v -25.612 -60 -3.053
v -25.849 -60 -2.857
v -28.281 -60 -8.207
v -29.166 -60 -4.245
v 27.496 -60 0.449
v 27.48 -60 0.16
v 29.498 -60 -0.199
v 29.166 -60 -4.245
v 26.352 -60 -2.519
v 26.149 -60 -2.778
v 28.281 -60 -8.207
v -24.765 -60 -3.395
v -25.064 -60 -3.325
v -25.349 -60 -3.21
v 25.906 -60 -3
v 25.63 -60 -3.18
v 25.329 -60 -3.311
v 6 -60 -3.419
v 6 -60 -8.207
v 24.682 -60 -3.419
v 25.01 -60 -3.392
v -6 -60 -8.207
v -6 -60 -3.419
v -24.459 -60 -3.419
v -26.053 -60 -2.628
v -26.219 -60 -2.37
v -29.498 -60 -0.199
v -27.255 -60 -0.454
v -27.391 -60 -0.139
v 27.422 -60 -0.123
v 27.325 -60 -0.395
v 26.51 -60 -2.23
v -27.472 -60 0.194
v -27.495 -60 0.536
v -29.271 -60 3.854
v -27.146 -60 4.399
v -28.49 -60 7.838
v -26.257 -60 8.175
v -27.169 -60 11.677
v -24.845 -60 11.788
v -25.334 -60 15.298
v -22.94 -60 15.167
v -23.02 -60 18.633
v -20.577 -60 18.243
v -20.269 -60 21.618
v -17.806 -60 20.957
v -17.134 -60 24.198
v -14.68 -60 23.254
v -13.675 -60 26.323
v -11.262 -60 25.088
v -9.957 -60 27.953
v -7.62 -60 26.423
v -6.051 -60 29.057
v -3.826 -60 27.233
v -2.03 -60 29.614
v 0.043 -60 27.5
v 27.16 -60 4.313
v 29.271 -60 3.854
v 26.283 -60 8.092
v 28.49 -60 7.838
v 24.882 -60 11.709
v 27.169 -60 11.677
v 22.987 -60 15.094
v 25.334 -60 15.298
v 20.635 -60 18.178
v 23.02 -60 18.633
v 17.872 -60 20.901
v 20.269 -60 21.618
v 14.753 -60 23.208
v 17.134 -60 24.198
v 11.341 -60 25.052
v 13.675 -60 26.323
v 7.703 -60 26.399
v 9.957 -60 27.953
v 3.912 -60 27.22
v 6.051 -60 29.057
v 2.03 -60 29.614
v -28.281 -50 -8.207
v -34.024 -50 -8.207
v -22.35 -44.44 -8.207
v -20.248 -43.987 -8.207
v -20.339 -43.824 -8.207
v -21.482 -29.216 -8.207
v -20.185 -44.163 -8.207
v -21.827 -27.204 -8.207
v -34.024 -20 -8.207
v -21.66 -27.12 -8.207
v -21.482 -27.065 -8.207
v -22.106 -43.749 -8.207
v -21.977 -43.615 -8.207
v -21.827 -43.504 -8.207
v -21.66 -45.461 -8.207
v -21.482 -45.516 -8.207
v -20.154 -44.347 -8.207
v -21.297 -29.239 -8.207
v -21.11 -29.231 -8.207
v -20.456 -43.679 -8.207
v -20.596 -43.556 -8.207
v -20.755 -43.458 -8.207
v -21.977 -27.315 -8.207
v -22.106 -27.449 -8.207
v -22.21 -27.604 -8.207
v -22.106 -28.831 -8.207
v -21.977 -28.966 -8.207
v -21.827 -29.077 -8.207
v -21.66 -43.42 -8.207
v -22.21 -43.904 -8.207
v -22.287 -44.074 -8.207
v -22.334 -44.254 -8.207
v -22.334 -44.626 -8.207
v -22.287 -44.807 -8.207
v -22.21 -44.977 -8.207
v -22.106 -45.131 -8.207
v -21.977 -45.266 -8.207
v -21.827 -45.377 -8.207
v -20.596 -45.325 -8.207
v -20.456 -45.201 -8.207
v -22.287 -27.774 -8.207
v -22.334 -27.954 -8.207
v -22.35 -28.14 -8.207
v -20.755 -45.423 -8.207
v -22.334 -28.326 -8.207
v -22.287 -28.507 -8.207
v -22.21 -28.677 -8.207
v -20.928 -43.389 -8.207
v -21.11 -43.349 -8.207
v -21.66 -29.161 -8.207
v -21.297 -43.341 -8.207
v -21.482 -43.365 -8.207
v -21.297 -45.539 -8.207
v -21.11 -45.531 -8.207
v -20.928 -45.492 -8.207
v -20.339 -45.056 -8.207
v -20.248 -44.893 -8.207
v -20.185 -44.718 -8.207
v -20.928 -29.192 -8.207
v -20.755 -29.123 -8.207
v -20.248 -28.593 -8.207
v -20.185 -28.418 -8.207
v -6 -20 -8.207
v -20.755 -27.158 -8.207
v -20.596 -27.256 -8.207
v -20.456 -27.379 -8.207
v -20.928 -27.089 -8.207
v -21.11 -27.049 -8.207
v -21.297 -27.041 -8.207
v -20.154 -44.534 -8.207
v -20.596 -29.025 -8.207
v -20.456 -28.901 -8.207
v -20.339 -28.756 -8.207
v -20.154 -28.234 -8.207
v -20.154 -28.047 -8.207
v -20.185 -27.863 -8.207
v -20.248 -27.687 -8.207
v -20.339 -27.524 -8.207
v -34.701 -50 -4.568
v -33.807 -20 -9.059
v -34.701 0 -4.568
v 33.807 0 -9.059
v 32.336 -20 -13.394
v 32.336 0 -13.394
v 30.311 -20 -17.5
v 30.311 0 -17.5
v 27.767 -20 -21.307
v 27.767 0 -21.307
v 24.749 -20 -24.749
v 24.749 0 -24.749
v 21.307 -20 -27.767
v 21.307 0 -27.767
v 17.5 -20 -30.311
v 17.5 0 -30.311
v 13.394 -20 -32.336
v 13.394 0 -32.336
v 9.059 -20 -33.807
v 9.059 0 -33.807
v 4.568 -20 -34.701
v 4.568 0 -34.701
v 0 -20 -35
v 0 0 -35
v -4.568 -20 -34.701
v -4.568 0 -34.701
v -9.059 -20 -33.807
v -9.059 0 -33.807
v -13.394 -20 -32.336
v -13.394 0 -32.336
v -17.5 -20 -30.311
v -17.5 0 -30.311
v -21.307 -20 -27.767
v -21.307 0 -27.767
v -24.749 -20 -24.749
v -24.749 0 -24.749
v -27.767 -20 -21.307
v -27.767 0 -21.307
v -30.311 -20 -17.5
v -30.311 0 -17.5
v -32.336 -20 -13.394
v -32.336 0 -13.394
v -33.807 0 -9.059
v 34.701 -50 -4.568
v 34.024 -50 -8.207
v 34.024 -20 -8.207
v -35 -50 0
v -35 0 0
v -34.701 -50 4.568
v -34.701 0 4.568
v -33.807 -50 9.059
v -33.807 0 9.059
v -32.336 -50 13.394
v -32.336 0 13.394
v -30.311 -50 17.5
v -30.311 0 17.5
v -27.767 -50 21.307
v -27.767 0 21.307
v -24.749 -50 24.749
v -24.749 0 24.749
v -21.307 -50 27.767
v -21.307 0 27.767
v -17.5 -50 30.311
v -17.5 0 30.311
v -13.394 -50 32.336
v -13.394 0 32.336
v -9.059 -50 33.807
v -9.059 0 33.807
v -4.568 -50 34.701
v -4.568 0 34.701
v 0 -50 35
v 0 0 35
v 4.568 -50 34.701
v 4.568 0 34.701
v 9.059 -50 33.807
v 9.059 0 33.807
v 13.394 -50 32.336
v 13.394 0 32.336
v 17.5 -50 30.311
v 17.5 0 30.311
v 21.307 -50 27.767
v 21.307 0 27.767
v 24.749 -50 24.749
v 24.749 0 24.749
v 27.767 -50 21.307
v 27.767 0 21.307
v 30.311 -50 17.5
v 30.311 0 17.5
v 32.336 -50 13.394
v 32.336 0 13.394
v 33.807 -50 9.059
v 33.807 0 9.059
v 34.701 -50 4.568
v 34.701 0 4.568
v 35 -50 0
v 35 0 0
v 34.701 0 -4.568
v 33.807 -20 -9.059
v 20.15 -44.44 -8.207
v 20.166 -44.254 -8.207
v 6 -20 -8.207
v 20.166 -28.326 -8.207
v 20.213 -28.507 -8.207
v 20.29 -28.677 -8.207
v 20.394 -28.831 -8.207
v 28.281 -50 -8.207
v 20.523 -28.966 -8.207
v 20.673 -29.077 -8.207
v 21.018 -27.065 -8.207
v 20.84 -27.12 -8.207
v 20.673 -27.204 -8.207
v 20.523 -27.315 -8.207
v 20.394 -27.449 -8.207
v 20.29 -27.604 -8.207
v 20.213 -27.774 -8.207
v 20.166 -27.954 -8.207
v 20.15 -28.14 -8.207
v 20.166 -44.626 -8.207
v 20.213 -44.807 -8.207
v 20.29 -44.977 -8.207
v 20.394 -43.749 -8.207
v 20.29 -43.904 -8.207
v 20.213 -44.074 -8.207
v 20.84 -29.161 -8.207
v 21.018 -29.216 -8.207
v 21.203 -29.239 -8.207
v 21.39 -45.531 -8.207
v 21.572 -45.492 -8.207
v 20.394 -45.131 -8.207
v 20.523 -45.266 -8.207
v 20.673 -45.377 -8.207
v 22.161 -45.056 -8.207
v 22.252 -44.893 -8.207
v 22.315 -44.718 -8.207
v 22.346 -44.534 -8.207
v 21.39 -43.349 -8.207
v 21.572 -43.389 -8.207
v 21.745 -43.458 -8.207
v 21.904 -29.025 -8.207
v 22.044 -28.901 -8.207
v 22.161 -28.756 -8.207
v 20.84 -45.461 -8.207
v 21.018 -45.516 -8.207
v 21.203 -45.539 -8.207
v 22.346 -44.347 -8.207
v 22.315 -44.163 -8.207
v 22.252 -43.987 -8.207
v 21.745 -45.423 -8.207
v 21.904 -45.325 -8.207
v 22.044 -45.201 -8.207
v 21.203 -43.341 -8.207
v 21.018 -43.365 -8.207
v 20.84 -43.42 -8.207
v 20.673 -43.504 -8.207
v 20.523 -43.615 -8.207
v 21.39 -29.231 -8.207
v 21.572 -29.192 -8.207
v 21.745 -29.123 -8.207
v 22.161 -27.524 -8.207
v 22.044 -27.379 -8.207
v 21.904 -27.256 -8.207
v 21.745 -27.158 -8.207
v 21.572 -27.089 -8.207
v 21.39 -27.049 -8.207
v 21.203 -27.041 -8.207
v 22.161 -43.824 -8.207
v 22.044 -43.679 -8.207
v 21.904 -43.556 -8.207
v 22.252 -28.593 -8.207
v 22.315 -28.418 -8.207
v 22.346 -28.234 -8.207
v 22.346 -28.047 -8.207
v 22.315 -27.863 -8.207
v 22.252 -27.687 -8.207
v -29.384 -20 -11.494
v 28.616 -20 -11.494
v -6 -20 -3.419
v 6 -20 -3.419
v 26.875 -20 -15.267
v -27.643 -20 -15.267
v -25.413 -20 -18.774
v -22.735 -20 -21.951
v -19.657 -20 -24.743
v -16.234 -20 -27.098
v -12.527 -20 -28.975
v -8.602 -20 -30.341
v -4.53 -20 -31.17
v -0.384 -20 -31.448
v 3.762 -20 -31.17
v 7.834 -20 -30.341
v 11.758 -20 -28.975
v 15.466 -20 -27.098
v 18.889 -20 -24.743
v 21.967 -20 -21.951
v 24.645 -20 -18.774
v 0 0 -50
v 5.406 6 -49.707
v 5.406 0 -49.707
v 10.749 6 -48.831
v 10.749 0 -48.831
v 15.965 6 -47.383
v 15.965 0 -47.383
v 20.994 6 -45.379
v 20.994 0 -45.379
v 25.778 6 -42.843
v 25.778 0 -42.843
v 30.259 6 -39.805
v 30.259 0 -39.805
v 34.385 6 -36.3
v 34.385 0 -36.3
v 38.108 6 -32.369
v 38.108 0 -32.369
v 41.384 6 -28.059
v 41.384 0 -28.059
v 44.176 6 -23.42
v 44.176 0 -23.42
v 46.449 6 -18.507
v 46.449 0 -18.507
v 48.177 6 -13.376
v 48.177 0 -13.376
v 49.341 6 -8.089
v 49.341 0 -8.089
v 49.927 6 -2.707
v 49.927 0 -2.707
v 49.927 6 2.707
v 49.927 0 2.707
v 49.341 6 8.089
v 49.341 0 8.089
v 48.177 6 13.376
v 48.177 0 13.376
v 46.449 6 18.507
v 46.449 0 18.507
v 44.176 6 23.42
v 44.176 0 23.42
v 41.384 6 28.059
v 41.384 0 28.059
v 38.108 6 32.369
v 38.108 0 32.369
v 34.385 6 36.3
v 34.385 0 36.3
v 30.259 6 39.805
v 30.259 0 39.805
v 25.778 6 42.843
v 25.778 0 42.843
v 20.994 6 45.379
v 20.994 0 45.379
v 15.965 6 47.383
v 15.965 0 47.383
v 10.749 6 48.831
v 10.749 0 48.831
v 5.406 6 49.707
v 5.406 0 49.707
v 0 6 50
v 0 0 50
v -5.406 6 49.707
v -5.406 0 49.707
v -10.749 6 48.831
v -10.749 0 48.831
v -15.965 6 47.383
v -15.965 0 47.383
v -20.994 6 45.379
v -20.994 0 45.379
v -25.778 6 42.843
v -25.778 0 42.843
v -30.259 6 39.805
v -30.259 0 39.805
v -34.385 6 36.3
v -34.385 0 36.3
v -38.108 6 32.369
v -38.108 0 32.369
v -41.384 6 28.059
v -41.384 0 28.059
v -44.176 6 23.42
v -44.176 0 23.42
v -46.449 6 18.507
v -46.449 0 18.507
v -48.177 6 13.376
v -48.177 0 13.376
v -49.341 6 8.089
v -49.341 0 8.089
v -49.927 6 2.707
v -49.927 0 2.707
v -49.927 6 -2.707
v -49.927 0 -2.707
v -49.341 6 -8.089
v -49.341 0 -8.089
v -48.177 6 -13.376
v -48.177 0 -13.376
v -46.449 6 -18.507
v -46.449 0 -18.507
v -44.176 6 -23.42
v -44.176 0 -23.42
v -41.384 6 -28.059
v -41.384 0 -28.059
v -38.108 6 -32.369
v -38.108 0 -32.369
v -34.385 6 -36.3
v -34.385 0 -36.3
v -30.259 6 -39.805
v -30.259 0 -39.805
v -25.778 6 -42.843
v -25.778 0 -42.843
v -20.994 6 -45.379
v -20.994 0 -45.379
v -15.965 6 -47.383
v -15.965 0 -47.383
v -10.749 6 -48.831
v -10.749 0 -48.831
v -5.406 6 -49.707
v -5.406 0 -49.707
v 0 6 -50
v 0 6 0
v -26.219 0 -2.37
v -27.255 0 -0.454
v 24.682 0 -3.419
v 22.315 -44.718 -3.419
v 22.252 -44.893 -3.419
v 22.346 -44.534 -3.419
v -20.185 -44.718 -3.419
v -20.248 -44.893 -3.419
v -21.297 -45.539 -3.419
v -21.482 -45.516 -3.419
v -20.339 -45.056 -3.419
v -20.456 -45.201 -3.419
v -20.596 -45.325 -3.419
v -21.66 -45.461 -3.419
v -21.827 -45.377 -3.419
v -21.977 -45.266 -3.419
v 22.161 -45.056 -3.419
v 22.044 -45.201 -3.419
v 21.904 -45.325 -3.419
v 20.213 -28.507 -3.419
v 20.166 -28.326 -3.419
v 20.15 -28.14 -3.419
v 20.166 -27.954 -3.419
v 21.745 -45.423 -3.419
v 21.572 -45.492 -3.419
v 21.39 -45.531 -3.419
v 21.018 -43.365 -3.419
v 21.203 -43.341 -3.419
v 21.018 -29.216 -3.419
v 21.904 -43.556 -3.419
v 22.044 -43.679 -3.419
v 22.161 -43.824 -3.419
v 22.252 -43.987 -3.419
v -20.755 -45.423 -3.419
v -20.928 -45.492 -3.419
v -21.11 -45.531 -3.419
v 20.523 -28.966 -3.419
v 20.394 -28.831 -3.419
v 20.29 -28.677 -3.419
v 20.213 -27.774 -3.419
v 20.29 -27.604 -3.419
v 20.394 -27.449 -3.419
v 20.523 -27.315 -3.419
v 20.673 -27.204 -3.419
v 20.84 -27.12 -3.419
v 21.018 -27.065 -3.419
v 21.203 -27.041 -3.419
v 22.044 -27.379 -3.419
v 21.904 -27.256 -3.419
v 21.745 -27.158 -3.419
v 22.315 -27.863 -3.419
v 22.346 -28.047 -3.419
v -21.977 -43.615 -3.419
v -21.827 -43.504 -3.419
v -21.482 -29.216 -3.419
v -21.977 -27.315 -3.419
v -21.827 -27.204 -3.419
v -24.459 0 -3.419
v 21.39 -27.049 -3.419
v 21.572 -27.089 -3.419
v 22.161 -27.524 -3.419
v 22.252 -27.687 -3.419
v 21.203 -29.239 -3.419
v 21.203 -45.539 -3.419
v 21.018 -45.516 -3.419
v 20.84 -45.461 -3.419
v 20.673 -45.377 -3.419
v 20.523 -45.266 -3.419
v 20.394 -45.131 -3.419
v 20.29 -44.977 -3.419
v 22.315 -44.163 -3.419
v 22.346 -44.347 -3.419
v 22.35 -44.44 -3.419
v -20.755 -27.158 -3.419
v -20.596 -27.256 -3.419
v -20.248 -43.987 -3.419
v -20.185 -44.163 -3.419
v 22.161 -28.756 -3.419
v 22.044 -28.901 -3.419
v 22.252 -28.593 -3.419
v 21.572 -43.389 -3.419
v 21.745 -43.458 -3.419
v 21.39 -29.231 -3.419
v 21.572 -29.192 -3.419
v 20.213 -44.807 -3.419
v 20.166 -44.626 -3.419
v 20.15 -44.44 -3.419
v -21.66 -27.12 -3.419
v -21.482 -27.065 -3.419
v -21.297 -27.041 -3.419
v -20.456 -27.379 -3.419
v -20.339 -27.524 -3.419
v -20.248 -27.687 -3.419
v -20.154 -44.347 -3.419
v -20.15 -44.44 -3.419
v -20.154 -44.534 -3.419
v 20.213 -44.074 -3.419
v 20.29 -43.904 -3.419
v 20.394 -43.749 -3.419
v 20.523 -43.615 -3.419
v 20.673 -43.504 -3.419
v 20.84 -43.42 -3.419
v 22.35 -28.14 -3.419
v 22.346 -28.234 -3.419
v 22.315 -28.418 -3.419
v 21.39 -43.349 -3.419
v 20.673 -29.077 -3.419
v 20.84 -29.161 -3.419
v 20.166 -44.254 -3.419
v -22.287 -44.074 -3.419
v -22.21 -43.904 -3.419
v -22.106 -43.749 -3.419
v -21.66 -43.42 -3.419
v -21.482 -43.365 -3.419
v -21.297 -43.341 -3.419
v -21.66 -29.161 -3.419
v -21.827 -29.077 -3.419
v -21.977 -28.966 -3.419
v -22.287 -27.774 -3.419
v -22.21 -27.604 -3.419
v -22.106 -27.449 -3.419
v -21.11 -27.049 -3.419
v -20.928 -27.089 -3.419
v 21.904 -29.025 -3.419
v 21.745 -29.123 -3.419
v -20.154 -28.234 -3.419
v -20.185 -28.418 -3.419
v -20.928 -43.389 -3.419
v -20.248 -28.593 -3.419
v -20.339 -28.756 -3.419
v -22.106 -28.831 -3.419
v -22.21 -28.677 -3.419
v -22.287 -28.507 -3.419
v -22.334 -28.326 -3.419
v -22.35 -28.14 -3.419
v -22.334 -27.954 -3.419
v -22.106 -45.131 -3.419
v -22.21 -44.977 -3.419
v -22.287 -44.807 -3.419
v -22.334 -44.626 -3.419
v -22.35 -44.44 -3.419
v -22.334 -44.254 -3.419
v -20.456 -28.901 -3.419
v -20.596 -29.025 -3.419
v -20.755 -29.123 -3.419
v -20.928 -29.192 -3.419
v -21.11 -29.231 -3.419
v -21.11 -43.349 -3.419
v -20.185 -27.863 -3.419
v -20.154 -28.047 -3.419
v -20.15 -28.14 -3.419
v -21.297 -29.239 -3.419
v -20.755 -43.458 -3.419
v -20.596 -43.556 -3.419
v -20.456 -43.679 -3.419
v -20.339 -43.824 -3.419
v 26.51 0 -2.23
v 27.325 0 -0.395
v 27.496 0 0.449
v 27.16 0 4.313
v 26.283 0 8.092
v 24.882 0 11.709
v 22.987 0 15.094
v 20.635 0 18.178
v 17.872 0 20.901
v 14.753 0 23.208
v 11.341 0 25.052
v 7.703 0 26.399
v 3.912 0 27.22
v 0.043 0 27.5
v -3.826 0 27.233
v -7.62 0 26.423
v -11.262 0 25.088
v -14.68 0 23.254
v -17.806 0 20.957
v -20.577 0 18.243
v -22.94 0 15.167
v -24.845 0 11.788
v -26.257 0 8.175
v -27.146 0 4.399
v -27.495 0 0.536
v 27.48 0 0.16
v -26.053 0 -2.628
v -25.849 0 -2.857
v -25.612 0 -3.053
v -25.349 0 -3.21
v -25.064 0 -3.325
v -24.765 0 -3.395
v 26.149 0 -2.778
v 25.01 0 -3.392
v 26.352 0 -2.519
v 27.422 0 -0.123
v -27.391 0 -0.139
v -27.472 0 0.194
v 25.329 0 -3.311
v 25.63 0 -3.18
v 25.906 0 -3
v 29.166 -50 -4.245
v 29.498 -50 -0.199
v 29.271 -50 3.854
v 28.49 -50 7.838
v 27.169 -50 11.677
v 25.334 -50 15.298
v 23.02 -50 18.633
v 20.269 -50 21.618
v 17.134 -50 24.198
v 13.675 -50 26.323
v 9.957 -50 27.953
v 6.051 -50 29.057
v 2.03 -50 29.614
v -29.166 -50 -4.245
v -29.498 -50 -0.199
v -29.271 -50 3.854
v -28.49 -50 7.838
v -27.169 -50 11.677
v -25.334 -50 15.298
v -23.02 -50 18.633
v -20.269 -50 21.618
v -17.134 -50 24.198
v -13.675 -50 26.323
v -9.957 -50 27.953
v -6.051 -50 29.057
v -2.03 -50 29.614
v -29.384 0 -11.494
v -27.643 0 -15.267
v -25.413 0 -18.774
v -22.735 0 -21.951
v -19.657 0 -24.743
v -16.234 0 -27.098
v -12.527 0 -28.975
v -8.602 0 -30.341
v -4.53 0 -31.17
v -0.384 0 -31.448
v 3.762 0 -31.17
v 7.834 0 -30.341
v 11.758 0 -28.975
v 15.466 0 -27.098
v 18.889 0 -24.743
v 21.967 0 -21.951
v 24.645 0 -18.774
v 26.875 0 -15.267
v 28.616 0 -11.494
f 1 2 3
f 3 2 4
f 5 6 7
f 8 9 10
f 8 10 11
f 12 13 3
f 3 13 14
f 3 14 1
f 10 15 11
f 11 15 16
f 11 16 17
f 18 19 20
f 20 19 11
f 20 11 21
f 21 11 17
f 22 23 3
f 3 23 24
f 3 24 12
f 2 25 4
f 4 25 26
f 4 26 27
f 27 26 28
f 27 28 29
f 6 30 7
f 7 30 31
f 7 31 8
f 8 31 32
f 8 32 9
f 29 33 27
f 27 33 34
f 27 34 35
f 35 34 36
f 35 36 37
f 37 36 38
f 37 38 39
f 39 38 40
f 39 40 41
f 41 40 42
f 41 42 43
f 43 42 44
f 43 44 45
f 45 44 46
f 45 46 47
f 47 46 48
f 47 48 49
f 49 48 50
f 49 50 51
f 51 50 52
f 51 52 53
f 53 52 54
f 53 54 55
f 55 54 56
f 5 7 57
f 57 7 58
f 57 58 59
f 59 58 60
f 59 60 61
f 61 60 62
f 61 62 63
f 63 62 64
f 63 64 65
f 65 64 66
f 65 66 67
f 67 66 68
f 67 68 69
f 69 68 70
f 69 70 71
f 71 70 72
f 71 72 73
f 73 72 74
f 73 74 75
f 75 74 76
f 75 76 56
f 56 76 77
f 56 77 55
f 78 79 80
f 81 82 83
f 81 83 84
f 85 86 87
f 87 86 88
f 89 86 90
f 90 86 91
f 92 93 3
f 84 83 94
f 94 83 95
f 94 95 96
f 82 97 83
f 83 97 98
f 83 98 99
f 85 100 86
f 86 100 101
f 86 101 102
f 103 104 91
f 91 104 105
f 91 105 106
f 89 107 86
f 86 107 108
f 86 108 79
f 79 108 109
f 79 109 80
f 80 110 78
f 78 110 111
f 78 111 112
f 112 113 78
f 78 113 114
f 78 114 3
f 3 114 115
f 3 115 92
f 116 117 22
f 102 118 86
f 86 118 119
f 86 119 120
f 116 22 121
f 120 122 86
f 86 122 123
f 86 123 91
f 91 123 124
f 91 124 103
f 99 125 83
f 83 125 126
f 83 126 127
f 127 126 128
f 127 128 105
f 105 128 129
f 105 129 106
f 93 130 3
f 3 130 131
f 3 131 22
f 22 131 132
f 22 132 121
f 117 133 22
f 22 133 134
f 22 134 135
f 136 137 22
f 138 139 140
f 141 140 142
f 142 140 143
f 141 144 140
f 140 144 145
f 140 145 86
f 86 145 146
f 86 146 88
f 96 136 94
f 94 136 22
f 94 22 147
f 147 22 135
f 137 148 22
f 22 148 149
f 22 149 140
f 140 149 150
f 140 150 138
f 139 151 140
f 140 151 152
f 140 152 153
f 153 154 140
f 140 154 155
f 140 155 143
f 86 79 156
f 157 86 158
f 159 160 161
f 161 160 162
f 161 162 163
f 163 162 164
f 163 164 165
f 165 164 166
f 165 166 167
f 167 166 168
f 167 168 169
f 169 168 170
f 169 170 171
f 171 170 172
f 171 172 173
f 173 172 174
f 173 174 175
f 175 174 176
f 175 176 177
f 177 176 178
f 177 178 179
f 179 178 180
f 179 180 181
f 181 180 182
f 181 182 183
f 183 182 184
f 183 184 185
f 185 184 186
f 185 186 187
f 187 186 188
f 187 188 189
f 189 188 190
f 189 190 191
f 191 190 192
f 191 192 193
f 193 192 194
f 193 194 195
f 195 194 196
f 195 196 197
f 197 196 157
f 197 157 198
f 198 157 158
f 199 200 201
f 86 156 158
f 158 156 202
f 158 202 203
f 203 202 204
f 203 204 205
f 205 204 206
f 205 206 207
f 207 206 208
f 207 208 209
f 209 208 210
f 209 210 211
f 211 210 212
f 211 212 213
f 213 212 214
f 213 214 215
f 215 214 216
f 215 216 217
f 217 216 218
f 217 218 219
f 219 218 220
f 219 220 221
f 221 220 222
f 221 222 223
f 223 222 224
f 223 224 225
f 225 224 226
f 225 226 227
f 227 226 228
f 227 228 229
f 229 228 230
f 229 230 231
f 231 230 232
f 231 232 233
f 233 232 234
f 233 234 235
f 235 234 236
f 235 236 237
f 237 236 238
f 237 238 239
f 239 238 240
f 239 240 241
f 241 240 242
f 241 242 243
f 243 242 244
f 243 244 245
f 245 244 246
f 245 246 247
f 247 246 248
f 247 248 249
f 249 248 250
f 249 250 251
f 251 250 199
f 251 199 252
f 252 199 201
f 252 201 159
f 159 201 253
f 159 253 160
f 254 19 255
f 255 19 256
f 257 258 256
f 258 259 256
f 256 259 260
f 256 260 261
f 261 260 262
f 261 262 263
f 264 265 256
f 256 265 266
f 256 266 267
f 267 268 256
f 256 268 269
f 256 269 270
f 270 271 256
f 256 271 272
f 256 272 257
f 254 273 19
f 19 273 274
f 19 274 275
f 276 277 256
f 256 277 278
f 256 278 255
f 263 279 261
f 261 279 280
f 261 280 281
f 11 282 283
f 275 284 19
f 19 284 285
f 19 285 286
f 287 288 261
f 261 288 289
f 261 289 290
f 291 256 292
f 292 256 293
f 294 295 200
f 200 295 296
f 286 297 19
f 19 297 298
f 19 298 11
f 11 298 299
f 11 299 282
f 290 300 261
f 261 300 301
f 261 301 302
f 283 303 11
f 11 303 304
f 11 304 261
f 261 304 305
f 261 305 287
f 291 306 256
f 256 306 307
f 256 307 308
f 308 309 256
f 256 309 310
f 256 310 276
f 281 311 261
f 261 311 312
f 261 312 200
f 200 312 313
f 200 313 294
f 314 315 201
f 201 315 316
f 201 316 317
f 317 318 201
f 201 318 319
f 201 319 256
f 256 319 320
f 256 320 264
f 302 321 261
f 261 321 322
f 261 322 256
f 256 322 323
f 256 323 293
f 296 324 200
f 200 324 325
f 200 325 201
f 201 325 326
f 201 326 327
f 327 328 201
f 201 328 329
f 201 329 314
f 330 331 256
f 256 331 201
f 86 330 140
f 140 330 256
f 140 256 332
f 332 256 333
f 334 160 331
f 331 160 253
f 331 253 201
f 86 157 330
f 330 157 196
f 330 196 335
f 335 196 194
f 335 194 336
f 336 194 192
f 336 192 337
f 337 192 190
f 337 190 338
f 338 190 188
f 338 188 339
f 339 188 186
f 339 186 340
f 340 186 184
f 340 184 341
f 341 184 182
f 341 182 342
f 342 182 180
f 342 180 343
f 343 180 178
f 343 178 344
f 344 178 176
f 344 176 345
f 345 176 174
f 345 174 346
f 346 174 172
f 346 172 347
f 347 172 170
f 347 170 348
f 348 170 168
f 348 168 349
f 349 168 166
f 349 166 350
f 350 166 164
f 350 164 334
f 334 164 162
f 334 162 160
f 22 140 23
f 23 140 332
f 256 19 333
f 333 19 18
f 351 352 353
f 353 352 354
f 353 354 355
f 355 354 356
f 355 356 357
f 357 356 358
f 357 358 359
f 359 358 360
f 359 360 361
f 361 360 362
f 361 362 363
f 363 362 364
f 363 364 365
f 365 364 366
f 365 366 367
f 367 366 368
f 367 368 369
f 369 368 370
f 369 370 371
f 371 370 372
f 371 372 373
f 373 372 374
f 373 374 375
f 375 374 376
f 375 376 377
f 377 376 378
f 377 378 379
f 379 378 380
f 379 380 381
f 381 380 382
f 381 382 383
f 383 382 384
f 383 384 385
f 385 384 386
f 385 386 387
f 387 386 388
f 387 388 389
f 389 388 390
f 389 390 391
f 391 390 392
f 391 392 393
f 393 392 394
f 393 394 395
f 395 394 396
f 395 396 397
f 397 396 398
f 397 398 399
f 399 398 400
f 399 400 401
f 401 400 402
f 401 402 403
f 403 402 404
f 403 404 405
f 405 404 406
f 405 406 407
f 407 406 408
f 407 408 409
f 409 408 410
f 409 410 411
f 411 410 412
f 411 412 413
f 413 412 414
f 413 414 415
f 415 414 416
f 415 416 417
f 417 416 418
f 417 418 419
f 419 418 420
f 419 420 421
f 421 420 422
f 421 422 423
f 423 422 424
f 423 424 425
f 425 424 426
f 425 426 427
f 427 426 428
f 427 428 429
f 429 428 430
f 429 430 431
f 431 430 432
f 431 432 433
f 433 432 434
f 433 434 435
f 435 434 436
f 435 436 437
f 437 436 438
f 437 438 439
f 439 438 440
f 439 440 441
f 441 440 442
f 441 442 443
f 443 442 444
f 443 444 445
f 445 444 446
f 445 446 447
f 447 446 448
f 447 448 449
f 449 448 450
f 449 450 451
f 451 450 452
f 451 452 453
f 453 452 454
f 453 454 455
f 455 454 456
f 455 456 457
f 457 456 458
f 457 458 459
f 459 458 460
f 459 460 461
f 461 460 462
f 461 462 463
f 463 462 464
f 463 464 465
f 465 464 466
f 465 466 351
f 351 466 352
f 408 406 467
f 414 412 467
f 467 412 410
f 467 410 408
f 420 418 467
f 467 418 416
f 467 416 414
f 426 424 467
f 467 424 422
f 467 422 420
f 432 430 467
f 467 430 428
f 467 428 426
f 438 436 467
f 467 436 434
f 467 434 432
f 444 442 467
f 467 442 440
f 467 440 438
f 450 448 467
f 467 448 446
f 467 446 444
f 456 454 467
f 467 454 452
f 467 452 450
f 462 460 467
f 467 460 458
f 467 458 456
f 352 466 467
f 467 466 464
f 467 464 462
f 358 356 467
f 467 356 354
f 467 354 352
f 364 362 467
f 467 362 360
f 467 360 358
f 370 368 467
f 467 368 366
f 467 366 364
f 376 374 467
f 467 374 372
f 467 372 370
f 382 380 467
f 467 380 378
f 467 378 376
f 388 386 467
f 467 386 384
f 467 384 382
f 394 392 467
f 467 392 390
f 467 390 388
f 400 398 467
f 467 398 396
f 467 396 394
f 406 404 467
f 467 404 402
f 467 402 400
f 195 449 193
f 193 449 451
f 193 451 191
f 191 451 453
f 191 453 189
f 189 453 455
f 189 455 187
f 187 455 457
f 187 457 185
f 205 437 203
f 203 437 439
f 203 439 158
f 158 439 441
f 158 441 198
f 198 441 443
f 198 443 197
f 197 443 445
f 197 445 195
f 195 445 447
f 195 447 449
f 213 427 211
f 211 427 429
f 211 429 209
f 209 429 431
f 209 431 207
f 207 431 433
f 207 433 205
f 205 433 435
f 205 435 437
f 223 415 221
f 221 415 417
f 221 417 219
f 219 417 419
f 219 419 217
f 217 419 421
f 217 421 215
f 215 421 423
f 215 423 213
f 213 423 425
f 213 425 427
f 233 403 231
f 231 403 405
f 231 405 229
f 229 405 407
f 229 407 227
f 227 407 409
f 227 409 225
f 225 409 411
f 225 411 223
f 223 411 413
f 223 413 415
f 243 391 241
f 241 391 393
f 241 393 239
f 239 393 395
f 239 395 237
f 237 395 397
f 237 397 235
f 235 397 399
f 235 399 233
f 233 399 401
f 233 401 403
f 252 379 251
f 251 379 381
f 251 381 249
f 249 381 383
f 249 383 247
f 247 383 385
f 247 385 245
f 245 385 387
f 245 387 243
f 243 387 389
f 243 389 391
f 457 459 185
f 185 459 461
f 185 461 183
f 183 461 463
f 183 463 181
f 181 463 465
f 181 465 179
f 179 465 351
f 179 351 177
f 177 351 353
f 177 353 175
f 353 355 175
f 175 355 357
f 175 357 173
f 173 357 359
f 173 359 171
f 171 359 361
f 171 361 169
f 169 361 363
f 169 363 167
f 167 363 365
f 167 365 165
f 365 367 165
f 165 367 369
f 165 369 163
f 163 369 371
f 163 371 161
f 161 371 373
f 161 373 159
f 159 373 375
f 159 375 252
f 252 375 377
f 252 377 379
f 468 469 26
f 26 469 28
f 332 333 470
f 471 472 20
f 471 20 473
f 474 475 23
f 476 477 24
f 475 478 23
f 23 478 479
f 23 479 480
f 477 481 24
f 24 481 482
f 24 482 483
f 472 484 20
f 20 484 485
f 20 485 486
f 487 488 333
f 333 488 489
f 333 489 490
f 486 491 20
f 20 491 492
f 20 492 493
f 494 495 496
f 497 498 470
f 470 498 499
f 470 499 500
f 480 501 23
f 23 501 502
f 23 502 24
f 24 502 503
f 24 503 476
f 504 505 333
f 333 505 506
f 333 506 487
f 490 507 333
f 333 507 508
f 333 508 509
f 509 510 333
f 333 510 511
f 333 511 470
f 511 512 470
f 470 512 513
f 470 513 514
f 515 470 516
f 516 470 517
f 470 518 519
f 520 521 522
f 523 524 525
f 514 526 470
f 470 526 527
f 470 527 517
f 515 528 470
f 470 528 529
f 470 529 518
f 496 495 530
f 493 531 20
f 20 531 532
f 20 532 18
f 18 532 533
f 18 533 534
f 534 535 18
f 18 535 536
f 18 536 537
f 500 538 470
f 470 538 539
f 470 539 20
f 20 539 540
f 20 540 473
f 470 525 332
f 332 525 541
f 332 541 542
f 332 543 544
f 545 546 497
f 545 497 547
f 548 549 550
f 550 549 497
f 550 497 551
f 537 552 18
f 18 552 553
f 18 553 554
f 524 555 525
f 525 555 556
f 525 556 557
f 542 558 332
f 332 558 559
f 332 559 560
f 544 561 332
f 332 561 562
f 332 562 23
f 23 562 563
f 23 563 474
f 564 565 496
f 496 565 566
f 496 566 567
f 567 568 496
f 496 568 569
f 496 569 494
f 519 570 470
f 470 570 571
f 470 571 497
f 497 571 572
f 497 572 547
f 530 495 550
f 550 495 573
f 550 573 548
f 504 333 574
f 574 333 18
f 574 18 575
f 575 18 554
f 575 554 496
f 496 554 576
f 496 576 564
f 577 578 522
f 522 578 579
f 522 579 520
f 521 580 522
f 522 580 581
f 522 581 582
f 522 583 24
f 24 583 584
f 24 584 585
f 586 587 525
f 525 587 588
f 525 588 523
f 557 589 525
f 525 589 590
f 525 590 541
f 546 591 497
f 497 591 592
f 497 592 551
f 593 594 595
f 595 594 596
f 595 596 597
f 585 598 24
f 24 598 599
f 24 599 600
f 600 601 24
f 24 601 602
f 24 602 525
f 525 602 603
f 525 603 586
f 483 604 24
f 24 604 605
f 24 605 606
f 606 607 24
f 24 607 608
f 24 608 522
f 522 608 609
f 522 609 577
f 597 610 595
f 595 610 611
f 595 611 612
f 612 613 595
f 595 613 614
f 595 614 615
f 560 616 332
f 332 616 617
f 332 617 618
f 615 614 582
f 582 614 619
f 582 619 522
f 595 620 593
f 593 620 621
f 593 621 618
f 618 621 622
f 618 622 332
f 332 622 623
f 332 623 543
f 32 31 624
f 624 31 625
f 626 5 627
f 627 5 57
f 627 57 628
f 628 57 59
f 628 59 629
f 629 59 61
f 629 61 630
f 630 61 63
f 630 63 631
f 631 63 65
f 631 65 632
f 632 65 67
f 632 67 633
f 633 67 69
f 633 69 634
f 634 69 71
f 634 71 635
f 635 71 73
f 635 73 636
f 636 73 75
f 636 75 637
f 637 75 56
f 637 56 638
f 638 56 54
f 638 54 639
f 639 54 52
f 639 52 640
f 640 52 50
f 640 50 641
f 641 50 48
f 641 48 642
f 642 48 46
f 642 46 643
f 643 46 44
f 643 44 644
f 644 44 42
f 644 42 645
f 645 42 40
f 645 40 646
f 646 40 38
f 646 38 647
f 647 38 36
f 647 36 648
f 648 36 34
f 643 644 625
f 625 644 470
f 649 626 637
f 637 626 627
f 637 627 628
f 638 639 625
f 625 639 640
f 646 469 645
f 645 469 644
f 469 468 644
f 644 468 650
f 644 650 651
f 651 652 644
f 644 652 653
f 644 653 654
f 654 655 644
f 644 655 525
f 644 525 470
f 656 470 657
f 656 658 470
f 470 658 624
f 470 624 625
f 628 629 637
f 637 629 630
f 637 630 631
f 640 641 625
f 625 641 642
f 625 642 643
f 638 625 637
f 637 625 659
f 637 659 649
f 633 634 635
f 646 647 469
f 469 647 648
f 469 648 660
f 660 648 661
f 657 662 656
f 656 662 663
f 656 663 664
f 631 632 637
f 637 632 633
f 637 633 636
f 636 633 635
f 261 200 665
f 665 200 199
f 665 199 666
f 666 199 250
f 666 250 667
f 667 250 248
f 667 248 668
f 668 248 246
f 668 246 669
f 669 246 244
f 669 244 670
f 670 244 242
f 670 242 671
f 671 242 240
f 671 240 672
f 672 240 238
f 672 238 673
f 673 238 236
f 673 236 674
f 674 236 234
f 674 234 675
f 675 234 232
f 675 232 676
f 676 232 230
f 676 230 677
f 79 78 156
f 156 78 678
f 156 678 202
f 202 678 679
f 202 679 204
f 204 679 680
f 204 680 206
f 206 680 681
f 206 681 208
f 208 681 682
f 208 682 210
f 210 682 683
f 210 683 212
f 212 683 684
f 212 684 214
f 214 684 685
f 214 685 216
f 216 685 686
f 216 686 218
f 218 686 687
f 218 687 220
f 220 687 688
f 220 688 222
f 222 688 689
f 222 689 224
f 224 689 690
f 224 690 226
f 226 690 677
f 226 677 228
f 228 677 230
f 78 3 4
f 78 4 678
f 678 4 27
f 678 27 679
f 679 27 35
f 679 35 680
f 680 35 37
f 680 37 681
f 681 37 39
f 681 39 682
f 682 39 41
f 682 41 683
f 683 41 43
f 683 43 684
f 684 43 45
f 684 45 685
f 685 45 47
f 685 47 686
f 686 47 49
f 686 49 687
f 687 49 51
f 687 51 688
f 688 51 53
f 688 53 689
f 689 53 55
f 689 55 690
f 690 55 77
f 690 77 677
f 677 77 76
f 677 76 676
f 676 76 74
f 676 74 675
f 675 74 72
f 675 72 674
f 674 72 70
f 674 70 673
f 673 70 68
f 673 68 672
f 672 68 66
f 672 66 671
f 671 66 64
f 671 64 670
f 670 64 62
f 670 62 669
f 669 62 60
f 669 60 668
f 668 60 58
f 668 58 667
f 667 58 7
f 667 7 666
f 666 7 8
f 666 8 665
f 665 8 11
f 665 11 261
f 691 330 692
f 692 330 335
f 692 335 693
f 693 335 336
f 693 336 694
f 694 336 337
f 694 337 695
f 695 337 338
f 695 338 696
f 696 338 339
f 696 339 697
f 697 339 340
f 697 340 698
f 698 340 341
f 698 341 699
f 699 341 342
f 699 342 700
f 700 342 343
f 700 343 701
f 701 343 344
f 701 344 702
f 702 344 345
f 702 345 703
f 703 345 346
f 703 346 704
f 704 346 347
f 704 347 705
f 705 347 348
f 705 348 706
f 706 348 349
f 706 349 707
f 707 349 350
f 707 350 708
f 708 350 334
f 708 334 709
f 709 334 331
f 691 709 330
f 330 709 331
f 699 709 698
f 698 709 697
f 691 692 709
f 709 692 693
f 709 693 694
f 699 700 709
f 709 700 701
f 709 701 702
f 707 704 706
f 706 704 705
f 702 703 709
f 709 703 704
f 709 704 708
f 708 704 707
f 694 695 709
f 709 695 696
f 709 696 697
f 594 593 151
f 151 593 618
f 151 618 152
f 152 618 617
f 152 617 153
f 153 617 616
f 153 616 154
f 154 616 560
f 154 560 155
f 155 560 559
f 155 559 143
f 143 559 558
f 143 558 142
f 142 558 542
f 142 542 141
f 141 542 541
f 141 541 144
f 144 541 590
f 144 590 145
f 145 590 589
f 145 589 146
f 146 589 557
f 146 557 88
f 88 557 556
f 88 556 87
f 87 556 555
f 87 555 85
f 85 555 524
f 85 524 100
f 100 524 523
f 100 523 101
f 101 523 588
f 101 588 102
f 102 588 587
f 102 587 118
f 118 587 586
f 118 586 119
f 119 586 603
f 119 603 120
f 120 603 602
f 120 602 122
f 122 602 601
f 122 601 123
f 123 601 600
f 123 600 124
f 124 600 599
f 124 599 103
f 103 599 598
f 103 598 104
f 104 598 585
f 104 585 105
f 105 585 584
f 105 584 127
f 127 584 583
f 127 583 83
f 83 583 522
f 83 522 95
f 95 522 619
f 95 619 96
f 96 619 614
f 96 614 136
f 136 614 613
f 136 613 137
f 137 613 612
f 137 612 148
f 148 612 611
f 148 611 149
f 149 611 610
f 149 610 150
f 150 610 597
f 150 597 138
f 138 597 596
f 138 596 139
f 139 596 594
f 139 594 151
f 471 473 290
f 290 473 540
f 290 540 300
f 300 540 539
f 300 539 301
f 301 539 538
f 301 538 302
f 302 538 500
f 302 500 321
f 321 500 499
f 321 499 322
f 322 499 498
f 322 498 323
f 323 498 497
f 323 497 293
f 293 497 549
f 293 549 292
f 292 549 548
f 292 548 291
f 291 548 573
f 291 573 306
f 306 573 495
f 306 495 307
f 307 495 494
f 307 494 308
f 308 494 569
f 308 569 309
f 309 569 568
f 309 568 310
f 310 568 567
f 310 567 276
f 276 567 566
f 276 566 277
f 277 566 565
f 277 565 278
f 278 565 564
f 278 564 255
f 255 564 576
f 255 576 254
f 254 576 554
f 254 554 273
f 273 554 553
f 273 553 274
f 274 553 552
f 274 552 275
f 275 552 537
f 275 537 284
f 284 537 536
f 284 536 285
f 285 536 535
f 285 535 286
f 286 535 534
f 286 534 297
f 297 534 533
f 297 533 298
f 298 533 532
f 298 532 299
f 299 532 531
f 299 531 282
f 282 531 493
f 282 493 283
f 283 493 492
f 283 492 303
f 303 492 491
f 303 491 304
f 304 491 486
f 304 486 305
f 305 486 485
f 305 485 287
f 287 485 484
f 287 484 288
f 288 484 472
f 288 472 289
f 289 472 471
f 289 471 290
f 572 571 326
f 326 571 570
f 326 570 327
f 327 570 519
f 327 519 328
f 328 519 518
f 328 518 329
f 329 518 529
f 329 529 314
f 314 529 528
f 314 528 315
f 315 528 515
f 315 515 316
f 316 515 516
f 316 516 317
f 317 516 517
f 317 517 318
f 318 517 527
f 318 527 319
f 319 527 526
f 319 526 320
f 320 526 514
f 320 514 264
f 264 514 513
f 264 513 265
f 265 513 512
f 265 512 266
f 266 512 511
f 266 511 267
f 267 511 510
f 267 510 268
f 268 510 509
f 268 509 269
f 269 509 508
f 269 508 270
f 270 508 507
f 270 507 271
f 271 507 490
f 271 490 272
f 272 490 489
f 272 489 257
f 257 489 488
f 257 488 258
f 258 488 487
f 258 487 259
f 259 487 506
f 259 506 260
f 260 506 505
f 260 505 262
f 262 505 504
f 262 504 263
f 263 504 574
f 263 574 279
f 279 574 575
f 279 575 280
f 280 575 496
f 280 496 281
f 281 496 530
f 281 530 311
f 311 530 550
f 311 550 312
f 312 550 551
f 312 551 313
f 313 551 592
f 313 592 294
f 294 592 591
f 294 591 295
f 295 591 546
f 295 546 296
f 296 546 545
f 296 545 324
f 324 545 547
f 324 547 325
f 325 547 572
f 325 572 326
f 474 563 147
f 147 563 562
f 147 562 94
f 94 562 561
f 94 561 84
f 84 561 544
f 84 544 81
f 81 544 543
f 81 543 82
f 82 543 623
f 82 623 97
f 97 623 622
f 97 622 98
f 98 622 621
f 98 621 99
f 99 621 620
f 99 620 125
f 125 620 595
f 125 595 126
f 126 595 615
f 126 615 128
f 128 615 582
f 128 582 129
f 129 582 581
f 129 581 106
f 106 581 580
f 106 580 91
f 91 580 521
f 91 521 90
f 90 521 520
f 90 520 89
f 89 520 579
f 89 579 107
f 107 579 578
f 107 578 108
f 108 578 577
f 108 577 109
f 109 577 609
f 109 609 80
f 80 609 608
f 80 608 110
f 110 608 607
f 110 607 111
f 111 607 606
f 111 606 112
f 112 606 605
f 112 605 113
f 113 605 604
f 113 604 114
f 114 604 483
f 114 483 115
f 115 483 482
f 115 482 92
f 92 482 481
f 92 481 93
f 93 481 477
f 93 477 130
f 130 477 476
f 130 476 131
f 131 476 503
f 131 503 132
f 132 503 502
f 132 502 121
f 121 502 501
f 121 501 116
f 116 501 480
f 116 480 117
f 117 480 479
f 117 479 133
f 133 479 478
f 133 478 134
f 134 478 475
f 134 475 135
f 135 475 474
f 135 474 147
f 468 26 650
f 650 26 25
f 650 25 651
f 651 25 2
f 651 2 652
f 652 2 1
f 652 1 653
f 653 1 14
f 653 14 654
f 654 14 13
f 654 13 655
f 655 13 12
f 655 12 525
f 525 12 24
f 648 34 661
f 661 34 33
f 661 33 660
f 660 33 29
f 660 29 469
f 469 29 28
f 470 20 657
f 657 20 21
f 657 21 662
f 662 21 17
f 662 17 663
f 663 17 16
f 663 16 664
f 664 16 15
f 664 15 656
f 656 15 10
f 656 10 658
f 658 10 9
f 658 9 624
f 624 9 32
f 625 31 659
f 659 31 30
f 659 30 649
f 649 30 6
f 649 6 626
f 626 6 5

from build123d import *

# Parameters (mm, degrees)
SKETCH_1_R               = 50
EXTRUDE_1_DEPTH          = 6
SKETCH_2_R               = 35
EXTRUDE_2_DEPTH          = 60
SKETCH_4_W               = 77.448717432
SKETCH_4_H               = 33
CUT_EXTRUDE_2_DEPTH      = 40
SKETCH_5_W               = 12
SKETCH_5_H               = 45
CUT_EXTRUDE_3_DEPTH      = 30
CUT_EXTRUDE_4_DEPTH      = 97.726418315
CUT_EXTRUDE_4_DEPTH_BACK = 60
SKETCH_7_OUTSIDE_W       = 133.212
SKETCH_7_OUTSIDE_H       = 133.212
SKETCH_7_OUTSIDE_R       = 29.5
CUT_EXTRUDE_5_DEPTH      = 10
CUT_EXTRUDE_6_DEPTH      = 20
SKETCH_9_R               = 1.1
CUT_EXTRUDE_7_DEPTH      = 10
FILLET_1_R               = 2


with BuildPart() as part:
    # 草图1 → 凸台-拉伸1 (new body)
    with BuildSketch(Plane(origin=(0, 0, 0), x_dir=(1, 0, 0), z_dir=(0, 1, 0))):
        with Locations(Location((0, 0, 0), (0, 0, 270))):
            Circle(SKETCH_1_R)
    extrude(amount=EXTRUDE_1_DEPTH)

    # 草图2 → 凸台-拉伸2 (add)
    with BuildSketch(Plane.XZ):
        with Locations(Location((0, 0, 0), (0, 0, 270))):
            Circle(SKETCH_2_R)
    extrude(amount=EXTRUDE_2_DEPTH)

    # 草图4 → 切除-拉伸2 (cut)
    with BuildSketch(Plane.XZ.offset(60)):
        with Locations((2.029578549, -24.707284506)):
            Rectangle(SKETCH_4_W, SKETCH_4_H)
    extrude(amount=-CUT_EXTRUDE_2_DEPTH, mode=Mode.SUBTRACT)

    # 草图5 → 切除-拉伸3 (cut)
    with BuildSketch(Plane(origin=(0, 0, -8.207284506), x_dir=(-1, 0, 0), z_dir=(0, 0, -1))):
        with Locations((0, -42.5)):
            Rectangle(SKETCH_5_W, SKETCH_5_H)
    extrude(amount=-CUT_EXTRUDE_3_DEPTH, mode=Mode.SUBTRACT)

    # 草图6 → 切除-拉伸4 (cut, two sides: drawn at the far end of the back side and taken through both)
    with BuildSketch(Plane.XZ.offset(60).offset(-CUT_EXTRUDE_4_DEPTH_BACK)):
        with BuildLine():
            Line((-27.5, 0), (-25.651821524, -3.41877994))
            Line((-25.651821524, -3.41877994), (25.981995499, -3.41877994))
            Line((25.981995499, -3.41877994), (27.5, 0))
            ThreePointArc((27.5, 0), (0, 27.5), (-27.5, 0))
        make_face()
    extrude(amount=CUT_EXTRUDE_4_DEPTH + CUT_EXTRUDE_4_DEPTH_BACK, mode=Mode.SUBTRACT)

    # 草图7 outside → 切除-拉伸5 (cut)
    with BuildSketch(Plane.XZ.offset(60)):
        Rectangle(SKETCH_7_OUTSIDE_W, SKETCH_7_OUTSIDE_H)
        with Locations((0, 0.184250616)):
            Circle(SKETCH_7_OUTSIDE_R, mode=Mode.SUBTRACT)
    extrude(amount=-CUT_EXTRUDE_5_DEPTH, mode=Mode.SUBTRACT)

    # 草图8 → 切除-拉伸6 (cut)
    with BuildSketch(Plane.XZ.offset(20)):
        with BuildLine():
            Line((-29.384128464, -11.494001524), (28.615871536, -11.494001524))
            ThreePointArc((28.615871536, -11.494001524), (-0.384128464, -31.448176939), (-29.384128464, -11.494001524))
        make_face()
    extrude(amount=-CUT_EXTRUDE_6_DEPTH, mode=Mode.SUBTRACT)

    # 草图9 → 切除-拉伸7 (cut)
    with BuildSketch(Plane(origin=(0, 0, -8.207284506), x_dir=(-1, 0, 0), z_dir=(0, 0, -1))):
        with Locations((21.25, -28.140331005)):
            Circle(SKETCH_9_R)
        with Locations((21.25, -44.440331005)):
            Circle(SKETCH_9_R)
        with Locations((-21.25, -28.140331005)):
            Circle(SKETCH_9_R)
        with Locations((-21.25, -44.440331005)):
            Circle(SKETCH_9_R)
    extrude(amount=-CUT_EXTRUDE_7_DEPTH, mode=Mode.SUBTRACT)

    # 圆角1
    fillet_1_edges = [part.edges().sort_by_distance(p)[0] for p in [
        (-25.651821524, -30, -3.41877994),
        (27.5, -30, 0),
        (25.981995499, -30, -3.41877994),
        (-27.5, -30, 0),
    ]]
    fillet(fillet_1_edges, radius=FILLET_1_R)


solid = part.part
